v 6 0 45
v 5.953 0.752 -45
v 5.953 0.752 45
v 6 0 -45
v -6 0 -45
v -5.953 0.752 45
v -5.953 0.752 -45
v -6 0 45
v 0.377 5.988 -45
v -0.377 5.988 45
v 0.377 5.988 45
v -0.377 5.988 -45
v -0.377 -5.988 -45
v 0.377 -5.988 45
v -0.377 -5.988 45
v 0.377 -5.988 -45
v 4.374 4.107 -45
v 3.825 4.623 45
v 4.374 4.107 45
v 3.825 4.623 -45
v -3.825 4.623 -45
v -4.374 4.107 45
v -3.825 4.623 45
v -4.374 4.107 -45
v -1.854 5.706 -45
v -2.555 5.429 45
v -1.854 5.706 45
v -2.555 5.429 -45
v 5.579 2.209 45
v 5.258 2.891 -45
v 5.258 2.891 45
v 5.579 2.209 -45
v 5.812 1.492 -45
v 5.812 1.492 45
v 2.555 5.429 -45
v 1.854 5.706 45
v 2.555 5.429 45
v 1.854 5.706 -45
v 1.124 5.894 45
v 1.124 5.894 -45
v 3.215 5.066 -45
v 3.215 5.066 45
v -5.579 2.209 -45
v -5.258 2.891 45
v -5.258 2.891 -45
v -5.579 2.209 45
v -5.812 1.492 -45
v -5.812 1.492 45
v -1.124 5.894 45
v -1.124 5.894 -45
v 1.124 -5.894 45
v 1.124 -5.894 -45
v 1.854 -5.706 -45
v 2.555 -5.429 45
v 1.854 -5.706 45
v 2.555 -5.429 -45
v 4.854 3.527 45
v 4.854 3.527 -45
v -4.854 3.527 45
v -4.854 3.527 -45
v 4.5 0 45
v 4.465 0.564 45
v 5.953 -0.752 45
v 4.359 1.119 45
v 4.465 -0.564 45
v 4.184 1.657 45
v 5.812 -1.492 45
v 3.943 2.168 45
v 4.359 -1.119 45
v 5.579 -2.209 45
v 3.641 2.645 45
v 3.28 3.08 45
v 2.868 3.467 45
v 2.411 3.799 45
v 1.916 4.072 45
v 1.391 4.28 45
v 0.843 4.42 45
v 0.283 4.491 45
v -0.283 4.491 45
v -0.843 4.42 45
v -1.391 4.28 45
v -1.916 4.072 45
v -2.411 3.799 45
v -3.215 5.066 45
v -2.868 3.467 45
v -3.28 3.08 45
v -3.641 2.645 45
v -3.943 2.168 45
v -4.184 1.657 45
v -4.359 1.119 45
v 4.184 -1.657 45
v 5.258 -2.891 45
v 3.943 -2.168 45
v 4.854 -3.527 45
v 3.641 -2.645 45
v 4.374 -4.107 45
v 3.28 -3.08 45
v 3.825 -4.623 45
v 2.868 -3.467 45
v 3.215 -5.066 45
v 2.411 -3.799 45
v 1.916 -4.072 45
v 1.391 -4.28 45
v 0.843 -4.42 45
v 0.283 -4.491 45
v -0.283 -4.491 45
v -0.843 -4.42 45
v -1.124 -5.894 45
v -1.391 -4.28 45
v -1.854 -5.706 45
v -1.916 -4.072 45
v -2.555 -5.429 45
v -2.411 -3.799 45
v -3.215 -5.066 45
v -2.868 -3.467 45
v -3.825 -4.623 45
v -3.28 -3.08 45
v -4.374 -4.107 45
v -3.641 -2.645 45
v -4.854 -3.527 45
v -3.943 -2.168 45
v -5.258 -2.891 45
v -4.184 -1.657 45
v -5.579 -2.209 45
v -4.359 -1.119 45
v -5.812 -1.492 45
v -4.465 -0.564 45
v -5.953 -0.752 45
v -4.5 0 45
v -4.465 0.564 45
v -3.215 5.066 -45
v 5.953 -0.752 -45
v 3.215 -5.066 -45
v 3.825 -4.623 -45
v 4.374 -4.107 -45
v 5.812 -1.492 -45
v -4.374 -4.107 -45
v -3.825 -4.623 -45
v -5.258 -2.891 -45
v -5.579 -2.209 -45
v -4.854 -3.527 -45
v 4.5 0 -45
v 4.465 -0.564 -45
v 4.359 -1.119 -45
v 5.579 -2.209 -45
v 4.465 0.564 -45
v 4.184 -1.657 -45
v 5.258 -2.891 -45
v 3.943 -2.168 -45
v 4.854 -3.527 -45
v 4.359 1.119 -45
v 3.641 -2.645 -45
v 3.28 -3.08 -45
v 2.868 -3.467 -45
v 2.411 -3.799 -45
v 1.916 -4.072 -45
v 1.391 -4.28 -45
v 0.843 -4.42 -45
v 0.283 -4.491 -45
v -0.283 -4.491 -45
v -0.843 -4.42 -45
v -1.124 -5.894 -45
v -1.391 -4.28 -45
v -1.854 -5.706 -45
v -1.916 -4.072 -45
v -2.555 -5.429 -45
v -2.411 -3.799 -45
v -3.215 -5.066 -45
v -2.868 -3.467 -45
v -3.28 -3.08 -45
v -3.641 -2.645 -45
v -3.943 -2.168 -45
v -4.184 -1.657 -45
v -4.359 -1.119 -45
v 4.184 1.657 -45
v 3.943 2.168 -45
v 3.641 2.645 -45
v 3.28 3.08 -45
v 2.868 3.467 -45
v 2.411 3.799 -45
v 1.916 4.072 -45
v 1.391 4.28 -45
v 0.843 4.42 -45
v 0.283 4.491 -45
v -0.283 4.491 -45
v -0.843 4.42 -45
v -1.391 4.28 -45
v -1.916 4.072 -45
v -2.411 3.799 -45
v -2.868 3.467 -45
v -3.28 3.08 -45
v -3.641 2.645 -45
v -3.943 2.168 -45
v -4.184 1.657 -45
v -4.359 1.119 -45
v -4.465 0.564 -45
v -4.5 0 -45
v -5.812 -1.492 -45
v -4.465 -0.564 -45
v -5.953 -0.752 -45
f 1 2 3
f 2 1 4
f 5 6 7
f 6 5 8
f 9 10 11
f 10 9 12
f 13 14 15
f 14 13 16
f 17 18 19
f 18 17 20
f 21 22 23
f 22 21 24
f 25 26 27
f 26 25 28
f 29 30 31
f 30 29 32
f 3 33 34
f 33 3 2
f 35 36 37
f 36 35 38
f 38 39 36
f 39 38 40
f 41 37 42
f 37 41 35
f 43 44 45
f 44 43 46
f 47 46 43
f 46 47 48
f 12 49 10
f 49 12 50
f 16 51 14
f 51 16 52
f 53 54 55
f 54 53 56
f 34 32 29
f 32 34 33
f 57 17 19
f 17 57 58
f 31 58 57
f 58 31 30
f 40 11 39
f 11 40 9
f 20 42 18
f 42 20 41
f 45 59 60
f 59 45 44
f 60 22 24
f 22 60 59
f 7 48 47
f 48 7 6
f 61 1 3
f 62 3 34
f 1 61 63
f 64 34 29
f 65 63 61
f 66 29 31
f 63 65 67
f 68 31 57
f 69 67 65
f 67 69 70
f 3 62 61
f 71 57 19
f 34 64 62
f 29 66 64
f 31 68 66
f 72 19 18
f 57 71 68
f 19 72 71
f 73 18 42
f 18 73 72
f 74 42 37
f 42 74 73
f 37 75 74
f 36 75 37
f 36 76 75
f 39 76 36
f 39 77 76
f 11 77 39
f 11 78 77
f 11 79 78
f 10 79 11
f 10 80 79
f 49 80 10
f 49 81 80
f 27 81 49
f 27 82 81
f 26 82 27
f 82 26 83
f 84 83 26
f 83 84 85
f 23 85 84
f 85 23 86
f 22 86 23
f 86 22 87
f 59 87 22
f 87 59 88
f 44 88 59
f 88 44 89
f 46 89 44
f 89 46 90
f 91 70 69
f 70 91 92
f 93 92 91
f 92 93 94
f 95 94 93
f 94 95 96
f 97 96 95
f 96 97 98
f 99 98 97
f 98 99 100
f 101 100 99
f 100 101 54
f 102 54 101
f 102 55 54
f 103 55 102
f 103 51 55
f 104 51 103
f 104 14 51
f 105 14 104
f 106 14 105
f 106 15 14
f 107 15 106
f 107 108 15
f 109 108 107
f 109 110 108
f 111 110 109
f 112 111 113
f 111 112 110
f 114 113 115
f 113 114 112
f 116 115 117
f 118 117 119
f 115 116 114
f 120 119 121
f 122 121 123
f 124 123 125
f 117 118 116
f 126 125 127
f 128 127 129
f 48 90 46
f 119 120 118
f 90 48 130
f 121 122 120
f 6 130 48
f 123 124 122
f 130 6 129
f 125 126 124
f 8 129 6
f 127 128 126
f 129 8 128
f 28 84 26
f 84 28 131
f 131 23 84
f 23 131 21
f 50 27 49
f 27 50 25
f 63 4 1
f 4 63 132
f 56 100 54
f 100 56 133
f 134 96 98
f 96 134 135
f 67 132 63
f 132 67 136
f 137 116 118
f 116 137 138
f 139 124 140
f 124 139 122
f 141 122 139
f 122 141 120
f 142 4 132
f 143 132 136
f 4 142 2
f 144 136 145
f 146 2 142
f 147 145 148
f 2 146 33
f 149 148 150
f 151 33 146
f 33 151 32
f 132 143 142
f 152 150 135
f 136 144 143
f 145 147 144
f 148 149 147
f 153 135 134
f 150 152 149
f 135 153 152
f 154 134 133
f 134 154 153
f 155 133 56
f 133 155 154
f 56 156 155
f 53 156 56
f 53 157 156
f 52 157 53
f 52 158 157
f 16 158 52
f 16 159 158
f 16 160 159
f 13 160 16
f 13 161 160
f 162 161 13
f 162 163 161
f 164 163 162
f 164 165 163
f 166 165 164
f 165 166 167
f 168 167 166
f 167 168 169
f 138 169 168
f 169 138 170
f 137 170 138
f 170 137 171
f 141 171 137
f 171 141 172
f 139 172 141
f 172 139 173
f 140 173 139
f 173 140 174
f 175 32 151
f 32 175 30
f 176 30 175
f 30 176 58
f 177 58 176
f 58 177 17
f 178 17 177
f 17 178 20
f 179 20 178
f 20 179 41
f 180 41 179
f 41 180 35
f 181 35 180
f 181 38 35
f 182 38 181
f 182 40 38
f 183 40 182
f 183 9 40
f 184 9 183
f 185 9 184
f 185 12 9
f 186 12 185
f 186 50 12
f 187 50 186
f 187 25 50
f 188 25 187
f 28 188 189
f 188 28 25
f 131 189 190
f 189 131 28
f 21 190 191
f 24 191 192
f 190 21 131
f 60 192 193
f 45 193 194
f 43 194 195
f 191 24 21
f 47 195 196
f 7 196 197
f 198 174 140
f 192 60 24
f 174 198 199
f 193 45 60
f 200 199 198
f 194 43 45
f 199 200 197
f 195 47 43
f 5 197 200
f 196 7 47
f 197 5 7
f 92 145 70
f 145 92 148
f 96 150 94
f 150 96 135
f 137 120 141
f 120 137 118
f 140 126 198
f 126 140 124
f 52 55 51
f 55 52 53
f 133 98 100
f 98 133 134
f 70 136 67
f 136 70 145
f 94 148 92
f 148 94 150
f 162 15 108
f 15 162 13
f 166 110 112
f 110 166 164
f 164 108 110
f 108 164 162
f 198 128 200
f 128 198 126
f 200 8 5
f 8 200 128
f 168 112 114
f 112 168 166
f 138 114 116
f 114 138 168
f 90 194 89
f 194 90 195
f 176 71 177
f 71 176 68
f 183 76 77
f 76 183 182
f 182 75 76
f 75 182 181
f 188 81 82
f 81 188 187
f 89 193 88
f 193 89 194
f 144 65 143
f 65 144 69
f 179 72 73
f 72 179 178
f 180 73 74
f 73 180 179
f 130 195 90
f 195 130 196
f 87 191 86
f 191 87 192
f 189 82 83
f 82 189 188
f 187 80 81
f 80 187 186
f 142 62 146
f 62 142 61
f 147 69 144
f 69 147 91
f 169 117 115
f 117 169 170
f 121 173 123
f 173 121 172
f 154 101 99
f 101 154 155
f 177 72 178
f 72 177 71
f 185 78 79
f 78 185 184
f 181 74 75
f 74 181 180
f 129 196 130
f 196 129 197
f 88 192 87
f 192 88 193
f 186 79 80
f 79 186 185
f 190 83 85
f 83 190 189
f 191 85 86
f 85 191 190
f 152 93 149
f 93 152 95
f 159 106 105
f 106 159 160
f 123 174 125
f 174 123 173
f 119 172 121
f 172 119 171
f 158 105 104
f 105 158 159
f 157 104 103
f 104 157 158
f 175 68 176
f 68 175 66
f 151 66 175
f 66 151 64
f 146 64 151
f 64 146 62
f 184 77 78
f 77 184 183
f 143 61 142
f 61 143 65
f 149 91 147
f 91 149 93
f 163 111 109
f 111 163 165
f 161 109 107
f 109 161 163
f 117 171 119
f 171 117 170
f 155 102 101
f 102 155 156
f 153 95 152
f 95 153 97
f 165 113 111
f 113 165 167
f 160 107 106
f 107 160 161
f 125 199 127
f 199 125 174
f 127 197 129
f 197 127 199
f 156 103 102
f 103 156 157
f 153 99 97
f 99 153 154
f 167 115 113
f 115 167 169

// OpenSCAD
$fn = 50;


difference() {
	union() {
		translate(v = [0, 0, -45.0000000000]) {
			cylinder(h = 90, r = 6.0000000000);
		}
	}
	union() {
		translate(v = [0, 0, -100.0000000000]) {
			cylinder(h = 200, r = 4.5000000000);
		}
	}
}
